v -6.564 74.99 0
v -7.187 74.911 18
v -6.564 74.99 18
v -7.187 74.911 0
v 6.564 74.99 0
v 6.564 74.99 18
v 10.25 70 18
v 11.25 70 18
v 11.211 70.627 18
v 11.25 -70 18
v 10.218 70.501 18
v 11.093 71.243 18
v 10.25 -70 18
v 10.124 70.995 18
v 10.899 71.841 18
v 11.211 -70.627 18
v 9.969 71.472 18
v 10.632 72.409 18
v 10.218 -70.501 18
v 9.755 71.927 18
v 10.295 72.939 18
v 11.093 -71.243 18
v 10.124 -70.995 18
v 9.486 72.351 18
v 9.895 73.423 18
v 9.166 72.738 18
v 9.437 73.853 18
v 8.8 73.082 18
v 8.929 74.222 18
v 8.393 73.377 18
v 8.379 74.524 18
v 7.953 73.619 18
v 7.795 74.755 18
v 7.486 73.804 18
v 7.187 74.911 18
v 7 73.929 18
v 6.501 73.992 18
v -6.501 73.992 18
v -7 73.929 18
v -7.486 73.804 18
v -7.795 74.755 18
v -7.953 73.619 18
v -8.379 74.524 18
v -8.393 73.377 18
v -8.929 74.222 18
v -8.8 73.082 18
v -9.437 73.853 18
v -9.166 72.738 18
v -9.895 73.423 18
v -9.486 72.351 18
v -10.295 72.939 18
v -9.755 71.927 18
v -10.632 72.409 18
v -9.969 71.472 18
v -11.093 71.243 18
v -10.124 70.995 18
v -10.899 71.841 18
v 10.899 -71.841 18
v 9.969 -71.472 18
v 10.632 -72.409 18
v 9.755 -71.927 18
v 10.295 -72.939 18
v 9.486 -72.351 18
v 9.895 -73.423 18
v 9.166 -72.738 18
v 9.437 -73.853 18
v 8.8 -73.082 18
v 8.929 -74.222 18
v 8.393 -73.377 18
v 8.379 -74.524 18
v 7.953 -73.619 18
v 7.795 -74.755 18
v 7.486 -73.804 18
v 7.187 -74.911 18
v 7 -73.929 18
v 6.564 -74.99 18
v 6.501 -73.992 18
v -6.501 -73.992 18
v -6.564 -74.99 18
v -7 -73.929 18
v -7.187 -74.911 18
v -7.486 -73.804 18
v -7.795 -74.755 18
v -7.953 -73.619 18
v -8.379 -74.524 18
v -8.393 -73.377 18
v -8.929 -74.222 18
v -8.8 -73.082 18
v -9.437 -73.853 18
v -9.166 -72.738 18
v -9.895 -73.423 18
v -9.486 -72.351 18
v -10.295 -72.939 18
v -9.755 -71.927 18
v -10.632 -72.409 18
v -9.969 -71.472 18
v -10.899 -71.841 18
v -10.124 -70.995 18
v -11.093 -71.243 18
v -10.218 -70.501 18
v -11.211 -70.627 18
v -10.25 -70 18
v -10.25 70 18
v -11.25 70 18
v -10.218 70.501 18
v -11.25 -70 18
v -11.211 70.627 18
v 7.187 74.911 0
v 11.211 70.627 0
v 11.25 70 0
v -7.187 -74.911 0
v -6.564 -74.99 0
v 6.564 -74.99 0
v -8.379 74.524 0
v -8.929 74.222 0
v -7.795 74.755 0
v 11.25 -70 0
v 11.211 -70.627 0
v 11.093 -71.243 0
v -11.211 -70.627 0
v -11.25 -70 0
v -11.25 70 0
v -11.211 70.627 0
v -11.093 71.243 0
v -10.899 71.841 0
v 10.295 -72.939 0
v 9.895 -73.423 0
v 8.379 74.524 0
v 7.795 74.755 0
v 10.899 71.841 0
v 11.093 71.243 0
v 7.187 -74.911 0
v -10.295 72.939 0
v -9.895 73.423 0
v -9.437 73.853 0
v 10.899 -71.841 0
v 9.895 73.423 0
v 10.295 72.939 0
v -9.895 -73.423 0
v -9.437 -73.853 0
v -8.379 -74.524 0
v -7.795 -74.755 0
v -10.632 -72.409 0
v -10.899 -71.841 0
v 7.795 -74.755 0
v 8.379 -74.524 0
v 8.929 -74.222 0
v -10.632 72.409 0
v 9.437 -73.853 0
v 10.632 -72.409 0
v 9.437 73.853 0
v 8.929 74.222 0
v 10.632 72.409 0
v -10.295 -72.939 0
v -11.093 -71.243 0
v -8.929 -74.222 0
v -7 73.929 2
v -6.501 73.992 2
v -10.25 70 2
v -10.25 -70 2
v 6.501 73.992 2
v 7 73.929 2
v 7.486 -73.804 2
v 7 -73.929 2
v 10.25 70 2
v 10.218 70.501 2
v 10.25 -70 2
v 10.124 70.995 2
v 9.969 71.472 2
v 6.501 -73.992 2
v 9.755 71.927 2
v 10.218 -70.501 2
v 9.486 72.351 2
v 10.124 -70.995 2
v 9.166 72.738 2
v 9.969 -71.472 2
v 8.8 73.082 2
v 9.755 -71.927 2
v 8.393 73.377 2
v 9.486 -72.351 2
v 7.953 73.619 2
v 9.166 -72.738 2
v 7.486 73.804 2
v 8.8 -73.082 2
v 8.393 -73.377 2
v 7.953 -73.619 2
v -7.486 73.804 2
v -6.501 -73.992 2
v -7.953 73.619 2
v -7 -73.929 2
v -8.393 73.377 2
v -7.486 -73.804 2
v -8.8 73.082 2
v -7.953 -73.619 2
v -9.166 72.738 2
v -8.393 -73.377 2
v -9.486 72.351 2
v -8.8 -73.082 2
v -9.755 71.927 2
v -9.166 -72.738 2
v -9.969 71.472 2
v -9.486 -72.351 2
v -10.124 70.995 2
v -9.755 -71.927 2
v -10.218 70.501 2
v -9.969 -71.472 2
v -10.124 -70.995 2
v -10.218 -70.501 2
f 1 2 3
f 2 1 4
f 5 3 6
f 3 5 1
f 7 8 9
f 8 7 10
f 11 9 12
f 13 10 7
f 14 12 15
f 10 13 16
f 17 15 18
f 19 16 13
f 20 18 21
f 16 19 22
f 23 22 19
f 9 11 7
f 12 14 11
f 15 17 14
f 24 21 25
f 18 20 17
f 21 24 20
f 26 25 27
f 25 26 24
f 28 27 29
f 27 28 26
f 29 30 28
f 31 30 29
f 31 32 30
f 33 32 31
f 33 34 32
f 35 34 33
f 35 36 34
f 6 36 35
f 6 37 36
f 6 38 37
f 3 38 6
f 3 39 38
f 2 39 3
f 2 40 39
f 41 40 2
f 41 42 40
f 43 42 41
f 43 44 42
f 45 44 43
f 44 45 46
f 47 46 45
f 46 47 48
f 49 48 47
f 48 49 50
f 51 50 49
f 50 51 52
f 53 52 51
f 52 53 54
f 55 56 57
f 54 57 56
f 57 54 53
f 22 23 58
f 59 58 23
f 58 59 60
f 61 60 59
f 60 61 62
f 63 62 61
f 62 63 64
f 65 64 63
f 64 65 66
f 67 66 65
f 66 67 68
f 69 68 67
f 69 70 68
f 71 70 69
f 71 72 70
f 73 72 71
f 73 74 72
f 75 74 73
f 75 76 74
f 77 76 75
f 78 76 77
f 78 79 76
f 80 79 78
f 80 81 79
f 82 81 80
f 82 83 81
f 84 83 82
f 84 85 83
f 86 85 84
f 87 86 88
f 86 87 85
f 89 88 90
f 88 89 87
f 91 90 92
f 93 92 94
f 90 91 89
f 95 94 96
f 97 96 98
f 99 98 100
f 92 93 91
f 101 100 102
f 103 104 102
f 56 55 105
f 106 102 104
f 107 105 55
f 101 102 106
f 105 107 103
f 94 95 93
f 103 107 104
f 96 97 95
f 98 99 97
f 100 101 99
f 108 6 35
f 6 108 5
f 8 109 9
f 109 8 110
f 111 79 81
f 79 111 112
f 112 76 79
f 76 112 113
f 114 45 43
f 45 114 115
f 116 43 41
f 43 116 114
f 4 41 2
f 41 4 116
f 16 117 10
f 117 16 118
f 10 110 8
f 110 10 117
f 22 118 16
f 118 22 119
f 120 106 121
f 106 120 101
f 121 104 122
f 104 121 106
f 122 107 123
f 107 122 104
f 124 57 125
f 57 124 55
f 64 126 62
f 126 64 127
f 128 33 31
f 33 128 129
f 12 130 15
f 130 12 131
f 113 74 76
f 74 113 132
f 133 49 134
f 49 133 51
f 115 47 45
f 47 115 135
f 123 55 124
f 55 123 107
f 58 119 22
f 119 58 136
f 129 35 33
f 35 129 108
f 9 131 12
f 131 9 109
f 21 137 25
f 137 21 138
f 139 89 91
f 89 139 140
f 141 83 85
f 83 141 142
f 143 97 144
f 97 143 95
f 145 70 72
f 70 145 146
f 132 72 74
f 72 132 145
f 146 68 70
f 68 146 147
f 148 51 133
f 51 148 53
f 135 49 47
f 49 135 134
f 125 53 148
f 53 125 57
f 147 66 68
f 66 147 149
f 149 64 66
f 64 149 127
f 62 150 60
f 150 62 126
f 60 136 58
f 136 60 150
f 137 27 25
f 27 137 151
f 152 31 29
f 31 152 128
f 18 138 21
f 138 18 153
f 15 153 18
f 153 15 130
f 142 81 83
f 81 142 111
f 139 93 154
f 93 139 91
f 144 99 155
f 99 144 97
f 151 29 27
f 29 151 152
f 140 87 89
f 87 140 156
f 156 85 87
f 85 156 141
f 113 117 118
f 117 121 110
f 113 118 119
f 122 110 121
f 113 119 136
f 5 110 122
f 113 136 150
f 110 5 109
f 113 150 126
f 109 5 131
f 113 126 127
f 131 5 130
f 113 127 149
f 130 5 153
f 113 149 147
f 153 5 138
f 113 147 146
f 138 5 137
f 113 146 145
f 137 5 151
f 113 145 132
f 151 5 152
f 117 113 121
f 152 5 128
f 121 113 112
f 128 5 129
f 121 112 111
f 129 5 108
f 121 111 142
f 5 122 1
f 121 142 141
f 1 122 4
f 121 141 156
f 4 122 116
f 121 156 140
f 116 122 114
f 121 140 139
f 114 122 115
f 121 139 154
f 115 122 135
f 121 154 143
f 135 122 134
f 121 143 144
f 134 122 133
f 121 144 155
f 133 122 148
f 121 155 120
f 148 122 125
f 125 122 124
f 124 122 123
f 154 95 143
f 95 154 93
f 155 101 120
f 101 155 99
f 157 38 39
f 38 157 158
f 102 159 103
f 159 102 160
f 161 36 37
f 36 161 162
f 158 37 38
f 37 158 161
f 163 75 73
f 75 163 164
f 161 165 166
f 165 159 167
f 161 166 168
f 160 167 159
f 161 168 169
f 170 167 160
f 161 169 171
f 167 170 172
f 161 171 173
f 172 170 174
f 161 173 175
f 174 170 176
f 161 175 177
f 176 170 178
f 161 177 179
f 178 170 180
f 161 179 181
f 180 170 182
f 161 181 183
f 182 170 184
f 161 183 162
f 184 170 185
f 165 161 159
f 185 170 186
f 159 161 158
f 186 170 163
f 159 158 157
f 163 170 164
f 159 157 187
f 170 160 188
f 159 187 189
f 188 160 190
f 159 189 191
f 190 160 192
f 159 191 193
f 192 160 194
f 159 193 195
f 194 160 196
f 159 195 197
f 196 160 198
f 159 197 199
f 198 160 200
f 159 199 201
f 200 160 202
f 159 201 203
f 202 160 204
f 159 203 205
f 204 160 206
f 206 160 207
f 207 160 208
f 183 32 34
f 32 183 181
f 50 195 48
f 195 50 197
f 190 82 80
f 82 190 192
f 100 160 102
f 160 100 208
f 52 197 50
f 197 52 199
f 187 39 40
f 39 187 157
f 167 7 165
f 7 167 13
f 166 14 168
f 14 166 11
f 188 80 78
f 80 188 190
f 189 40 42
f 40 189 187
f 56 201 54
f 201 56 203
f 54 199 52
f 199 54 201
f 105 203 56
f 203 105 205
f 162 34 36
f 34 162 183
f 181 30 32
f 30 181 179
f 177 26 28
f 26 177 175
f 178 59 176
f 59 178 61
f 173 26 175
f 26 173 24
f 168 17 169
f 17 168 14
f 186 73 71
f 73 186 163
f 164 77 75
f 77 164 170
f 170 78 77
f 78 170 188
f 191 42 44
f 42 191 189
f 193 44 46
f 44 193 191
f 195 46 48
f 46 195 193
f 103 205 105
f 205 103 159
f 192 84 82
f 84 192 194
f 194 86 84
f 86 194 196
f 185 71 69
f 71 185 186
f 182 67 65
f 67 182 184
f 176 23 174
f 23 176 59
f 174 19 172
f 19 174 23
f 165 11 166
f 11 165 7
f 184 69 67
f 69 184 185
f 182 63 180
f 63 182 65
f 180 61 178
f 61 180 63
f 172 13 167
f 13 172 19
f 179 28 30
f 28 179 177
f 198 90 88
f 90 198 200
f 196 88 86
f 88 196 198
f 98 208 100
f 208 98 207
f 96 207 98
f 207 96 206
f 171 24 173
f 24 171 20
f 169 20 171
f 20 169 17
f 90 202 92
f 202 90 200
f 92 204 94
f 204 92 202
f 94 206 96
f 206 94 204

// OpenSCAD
$fn = 50;


difference() {
	union() {
		hull() {
			translate(v = [-6.2500000000, 70.0000000000, 0]) {
				cylinder(h = 18, r = 5);
			}
			translate(v = [6.2500000000, 70.0000000000, 0]) {
				cylinder(h = 18, r = 5);
			}
			translate(v = [-6.2500000000, -70.0000000000, 0]) {
				cylinder(h = 18, r = 5);
			}
			translate(v = [6.2500000000, -70.0000000000, 0]) {
				cylinder(h = 18, r = 5);
			}
		}
	}
	union() {
		translate(v = [0, 0, 2]) {
			hull() {
				translate(v = [-6.2500000000, 70.0000000000, 0]) {
					cylinder(h = 16, r = 4);
				}
				translate(v = [6.2500000000, 70.0000000000, 0]) {
					cylinder(h = 16, r = 4);
				}
				translate(v = [-6.2500000000, -70.0000000000, 0]) {
					cylinder(h = 16, r = 4);
				}
				translate(v = [6.2500000000, -70.0000000000, 0]) {
					cylinder(h = 16, r = 4);
				}
			}
		}
	}
}
